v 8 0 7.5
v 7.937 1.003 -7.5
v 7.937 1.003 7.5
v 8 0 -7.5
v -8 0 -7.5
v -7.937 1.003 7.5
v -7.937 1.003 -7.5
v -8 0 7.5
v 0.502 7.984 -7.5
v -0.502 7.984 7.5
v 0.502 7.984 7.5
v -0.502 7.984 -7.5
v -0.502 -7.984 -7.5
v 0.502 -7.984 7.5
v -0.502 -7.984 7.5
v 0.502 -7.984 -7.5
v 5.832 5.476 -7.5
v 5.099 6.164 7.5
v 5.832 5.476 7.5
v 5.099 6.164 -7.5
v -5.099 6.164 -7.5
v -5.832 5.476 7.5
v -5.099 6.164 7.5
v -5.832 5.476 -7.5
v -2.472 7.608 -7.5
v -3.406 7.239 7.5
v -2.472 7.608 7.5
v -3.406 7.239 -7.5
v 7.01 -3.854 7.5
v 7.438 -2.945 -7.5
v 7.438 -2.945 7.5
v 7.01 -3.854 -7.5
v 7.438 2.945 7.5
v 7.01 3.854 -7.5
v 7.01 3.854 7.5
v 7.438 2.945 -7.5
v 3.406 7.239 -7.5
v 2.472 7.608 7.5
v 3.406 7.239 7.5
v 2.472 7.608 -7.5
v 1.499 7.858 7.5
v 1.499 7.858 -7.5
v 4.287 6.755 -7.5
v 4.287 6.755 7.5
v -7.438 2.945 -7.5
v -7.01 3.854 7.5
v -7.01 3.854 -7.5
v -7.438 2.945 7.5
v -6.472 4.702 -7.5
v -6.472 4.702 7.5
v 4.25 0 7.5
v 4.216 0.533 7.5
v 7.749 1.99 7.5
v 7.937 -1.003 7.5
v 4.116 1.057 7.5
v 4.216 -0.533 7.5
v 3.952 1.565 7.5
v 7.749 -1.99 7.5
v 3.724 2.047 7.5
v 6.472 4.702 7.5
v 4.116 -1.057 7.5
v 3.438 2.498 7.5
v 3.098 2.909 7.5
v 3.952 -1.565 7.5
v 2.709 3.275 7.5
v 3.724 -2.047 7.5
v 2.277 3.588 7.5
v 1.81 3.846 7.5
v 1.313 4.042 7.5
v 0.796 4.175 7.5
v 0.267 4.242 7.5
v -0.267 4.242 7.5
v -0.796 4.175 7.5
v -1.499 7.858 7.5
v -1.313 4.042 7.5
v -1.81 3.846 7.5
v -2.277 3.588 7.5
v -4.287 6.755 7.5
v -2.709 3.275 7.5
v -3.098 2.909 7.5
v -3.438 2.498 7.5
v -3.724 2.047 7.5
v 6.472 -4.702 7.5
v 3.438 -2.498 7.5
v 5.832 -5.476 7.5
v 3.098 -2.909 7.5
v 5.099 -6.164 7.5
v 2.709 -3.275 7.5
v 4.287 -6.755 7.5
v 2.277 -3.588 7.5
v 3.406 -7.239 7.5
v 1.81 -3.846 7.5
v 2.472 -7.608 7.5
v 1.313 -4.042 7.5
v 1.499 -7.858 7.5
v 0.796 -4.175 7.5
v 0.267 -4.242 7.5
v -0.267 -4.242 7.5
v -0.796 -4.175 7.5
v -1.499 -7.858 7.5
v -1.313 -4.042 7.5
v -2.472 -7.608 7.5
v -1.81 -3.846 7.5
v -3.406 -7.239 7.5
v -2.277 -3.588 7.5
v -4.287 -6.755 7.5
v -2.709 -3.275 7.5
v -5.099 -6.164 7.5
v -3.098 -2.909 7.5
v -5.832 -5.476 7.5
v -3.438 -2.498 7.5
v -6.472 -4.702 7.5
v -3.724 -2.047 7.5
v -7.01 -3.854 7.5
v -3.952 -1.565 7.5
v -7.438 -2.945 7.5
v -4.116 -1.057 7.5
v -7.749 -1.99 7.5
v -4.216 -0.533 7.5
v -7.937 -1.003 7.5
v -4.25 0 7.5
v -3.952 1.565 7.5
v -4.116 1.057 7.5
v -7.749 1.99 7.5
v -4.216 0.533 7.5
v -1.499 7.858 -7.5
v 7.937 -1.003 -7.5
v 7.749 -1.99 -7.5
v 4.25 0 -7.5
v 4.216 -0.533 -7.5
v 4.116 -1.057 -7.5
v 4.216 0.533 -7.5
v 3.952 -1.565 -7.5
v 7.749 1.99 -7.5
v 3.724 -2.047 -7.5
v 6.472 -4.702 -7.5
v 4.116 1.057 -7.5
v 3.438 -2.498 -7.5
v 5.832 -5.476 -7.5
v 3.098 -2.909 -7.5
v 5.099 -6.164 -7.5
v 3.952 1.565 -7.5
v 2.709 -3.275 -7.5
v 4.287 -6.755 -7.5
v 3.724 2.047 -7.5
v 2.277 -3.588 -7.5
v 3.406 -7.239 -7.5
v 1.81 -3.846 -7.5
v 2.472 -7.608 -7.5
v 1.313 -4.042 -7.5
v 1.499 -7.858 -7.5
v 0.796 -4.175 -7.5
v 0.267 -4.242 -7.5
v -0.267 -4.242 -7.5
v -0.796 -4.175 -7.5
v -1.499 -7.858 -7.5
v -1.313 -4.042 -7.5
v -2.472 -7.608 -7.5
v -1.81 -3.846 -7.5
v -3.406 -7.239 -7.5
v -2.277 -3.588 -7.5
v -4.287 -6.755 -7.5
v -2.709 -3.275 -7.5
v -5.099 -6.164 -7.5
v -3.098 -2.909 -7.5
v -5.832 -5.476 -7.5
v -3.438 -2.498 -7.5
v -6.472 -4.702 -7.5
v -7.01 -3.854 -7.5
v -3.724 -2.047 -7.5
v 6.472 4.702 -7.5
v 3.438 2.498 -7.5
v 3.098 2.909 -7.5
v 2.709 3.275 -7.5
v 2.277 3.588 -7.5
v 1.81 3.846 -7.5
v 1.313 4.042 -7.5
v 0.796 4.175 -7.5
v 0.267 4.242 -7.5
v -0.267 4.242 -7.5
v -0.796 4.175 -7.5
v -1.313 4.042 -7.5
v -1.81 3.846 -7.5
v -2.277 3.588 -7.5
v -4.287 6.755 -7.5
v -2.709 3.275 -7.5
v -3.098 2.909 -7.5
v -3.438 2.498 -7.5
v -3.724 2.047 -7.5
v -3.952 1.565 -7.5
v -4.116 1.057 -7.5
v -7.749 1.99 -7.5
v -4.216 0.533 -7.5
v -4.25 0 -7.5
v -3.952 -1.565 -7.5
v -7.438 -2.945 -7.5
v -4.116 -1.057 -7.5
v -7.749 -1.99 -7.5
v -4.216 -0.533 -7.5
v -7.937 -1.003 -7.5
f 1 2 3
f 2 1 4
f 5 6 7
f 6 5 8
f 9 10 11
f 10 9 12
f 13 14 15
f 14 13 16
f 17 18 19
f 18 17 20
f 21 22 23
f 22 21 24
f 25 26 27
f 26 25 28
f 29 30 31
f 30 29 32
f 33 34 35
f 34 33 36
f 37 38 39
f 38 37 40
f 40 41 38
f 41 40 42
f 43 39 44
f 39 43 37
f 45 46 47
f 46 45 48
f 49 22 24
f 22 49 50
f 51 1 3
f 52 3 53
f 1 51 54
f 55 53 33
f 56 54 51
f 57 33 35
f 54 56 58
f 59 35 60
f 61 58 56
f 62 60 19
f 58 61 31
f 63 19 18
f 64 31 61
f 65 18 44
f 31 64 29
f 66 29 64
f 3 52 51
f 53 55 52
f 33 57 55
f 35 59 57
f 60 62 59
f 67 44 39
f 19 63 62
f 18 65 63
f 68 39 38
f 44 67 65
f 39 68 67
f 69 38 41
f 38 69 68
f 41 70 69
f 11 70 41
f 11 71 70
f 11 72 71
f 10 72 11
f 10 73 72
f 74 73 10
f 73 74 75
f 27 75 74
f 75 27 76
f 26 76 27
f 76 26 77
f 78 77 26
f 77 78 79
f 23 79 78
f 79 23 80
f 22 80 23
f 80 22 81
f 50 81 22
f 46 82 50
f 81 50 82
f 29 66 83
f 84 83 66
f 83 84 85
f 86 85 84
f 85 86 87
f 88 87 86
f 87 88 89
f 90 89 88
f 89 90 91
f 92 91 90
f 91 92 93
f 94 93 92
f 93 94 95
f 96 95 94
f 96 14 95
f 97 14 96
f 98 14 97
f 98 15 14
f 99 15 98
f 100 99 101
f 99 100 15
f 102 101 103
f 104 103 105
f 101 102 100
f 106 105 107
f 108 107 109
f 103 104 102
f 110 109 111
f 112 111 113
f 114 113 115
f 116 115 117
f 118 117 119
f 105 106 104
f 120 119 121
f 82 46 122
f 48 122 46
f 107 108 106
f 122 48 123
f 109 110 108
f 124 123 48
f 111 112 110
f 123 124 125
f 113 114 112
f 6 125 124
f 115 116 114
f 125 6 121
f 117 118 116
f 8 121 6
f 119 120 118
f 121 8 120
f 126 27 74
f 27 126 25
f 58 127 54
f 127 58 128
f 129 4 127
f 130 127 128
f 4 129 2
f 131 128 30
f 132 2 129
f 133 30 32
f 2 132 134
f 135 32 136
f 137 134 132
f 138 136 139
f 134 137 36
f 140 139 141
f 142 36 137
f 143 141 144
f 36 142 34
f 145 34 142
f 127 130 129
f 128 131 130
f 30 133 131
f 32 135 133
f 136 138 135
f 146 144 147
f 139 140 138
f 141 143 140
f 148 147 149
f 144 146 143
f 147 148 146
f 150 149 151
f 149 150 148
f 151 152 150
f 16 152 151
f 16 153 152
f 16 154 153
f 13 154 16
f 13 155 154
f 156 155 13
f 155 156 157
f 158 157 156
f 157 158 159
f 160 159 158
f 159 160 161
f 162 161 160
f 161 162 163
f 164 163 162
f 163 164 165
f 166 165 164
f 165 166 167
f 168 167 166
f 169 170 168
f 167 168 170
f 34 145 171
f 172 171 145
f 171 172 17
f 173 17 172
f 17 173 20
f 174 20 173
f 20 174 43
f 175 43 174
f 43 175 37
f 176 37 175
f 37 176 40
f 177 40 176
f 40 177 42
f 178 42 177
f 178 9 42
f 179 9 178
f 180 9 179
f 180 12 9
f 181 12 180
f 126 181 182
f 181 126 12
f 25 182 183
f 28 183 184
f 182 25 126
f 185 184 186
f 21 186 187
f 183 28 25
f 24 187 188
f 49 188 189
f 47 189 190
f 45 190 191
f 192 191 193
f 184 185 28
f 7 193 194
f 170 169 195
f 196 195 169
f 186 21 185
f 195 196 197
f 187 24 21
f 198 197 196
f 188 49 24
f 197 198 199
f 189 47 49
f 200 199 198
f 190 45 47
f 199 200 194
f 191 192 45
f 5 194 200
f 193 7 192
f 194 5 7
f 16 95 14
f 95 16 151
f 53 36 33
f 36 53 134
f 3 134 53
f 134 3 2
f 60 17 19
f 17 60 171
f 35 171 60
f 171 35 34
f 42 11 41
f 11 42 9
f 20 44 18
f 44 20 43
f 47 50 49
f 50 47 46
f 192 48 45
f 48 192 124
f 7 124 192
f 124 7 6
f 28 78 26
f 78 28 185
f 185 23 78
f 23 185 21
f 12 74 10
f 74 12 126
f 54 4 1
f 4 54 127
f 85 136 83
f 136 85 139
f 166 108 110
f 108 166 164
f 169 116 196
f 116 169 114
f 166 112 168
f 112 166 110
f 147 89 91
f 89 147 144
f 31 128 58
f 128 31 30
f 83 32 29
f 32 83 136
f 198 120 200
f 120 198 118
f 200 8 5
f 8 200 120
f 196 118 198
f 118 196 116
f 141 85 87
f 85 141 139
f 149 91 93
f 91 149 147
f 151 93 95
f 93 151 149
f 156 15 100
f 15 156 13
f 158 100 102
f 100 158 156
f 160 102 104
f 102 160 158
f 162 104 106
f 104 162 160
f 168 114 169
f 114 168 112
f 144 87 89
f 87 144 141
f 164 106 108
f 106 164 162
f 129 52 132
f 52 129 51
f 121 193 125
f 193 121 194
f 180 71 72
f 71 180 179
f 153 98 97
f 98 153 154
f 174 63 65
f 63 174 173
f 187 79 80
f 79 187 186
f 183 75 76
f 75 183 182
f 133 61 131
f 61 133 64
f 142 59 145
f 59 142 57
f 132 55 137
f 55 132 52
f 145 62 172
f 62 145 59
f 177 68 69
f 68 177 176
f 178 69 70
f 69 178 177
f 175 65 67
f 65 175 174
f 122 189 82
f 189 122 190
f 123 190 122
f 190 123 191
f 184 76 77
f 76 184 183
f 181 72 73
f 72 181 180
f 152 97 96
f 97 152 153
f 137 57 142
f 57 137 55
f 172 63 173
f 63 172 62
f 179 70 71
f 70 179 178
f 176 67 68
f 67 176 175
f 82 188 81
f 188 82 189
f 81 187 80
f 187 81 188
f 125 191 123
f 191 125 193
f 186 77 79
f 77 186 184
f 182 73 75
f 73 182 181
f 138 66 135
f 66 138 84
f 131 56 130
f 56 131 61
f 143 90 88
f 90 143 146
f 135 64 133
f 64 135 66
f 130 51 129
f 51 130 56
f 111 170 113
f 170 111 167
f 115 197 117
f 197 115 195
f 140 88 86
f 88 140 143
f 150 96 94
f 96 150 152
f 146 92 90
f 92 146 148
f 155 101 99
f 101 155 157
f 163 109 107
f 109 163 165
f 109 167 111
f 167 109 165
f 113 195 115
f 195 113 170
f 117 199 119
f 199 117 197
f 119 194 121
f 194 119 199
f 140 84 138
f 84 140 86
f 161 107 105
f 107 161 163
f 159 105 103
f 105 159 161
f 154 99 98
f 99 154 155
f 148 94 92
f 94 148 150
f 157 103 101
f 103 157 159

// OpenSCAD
$fn = 50;


difference() {
	union() {
		translate(v = [0, 0, -7.5000000000]) {
			cylinder(h = 15, r = 8.0000000000);
		}
	}
	union() {
		translate(v = [0, 0, -100.0000000000]) {
			cylinder(h = 200, r = 4.2500000000);
		}
	}
}
